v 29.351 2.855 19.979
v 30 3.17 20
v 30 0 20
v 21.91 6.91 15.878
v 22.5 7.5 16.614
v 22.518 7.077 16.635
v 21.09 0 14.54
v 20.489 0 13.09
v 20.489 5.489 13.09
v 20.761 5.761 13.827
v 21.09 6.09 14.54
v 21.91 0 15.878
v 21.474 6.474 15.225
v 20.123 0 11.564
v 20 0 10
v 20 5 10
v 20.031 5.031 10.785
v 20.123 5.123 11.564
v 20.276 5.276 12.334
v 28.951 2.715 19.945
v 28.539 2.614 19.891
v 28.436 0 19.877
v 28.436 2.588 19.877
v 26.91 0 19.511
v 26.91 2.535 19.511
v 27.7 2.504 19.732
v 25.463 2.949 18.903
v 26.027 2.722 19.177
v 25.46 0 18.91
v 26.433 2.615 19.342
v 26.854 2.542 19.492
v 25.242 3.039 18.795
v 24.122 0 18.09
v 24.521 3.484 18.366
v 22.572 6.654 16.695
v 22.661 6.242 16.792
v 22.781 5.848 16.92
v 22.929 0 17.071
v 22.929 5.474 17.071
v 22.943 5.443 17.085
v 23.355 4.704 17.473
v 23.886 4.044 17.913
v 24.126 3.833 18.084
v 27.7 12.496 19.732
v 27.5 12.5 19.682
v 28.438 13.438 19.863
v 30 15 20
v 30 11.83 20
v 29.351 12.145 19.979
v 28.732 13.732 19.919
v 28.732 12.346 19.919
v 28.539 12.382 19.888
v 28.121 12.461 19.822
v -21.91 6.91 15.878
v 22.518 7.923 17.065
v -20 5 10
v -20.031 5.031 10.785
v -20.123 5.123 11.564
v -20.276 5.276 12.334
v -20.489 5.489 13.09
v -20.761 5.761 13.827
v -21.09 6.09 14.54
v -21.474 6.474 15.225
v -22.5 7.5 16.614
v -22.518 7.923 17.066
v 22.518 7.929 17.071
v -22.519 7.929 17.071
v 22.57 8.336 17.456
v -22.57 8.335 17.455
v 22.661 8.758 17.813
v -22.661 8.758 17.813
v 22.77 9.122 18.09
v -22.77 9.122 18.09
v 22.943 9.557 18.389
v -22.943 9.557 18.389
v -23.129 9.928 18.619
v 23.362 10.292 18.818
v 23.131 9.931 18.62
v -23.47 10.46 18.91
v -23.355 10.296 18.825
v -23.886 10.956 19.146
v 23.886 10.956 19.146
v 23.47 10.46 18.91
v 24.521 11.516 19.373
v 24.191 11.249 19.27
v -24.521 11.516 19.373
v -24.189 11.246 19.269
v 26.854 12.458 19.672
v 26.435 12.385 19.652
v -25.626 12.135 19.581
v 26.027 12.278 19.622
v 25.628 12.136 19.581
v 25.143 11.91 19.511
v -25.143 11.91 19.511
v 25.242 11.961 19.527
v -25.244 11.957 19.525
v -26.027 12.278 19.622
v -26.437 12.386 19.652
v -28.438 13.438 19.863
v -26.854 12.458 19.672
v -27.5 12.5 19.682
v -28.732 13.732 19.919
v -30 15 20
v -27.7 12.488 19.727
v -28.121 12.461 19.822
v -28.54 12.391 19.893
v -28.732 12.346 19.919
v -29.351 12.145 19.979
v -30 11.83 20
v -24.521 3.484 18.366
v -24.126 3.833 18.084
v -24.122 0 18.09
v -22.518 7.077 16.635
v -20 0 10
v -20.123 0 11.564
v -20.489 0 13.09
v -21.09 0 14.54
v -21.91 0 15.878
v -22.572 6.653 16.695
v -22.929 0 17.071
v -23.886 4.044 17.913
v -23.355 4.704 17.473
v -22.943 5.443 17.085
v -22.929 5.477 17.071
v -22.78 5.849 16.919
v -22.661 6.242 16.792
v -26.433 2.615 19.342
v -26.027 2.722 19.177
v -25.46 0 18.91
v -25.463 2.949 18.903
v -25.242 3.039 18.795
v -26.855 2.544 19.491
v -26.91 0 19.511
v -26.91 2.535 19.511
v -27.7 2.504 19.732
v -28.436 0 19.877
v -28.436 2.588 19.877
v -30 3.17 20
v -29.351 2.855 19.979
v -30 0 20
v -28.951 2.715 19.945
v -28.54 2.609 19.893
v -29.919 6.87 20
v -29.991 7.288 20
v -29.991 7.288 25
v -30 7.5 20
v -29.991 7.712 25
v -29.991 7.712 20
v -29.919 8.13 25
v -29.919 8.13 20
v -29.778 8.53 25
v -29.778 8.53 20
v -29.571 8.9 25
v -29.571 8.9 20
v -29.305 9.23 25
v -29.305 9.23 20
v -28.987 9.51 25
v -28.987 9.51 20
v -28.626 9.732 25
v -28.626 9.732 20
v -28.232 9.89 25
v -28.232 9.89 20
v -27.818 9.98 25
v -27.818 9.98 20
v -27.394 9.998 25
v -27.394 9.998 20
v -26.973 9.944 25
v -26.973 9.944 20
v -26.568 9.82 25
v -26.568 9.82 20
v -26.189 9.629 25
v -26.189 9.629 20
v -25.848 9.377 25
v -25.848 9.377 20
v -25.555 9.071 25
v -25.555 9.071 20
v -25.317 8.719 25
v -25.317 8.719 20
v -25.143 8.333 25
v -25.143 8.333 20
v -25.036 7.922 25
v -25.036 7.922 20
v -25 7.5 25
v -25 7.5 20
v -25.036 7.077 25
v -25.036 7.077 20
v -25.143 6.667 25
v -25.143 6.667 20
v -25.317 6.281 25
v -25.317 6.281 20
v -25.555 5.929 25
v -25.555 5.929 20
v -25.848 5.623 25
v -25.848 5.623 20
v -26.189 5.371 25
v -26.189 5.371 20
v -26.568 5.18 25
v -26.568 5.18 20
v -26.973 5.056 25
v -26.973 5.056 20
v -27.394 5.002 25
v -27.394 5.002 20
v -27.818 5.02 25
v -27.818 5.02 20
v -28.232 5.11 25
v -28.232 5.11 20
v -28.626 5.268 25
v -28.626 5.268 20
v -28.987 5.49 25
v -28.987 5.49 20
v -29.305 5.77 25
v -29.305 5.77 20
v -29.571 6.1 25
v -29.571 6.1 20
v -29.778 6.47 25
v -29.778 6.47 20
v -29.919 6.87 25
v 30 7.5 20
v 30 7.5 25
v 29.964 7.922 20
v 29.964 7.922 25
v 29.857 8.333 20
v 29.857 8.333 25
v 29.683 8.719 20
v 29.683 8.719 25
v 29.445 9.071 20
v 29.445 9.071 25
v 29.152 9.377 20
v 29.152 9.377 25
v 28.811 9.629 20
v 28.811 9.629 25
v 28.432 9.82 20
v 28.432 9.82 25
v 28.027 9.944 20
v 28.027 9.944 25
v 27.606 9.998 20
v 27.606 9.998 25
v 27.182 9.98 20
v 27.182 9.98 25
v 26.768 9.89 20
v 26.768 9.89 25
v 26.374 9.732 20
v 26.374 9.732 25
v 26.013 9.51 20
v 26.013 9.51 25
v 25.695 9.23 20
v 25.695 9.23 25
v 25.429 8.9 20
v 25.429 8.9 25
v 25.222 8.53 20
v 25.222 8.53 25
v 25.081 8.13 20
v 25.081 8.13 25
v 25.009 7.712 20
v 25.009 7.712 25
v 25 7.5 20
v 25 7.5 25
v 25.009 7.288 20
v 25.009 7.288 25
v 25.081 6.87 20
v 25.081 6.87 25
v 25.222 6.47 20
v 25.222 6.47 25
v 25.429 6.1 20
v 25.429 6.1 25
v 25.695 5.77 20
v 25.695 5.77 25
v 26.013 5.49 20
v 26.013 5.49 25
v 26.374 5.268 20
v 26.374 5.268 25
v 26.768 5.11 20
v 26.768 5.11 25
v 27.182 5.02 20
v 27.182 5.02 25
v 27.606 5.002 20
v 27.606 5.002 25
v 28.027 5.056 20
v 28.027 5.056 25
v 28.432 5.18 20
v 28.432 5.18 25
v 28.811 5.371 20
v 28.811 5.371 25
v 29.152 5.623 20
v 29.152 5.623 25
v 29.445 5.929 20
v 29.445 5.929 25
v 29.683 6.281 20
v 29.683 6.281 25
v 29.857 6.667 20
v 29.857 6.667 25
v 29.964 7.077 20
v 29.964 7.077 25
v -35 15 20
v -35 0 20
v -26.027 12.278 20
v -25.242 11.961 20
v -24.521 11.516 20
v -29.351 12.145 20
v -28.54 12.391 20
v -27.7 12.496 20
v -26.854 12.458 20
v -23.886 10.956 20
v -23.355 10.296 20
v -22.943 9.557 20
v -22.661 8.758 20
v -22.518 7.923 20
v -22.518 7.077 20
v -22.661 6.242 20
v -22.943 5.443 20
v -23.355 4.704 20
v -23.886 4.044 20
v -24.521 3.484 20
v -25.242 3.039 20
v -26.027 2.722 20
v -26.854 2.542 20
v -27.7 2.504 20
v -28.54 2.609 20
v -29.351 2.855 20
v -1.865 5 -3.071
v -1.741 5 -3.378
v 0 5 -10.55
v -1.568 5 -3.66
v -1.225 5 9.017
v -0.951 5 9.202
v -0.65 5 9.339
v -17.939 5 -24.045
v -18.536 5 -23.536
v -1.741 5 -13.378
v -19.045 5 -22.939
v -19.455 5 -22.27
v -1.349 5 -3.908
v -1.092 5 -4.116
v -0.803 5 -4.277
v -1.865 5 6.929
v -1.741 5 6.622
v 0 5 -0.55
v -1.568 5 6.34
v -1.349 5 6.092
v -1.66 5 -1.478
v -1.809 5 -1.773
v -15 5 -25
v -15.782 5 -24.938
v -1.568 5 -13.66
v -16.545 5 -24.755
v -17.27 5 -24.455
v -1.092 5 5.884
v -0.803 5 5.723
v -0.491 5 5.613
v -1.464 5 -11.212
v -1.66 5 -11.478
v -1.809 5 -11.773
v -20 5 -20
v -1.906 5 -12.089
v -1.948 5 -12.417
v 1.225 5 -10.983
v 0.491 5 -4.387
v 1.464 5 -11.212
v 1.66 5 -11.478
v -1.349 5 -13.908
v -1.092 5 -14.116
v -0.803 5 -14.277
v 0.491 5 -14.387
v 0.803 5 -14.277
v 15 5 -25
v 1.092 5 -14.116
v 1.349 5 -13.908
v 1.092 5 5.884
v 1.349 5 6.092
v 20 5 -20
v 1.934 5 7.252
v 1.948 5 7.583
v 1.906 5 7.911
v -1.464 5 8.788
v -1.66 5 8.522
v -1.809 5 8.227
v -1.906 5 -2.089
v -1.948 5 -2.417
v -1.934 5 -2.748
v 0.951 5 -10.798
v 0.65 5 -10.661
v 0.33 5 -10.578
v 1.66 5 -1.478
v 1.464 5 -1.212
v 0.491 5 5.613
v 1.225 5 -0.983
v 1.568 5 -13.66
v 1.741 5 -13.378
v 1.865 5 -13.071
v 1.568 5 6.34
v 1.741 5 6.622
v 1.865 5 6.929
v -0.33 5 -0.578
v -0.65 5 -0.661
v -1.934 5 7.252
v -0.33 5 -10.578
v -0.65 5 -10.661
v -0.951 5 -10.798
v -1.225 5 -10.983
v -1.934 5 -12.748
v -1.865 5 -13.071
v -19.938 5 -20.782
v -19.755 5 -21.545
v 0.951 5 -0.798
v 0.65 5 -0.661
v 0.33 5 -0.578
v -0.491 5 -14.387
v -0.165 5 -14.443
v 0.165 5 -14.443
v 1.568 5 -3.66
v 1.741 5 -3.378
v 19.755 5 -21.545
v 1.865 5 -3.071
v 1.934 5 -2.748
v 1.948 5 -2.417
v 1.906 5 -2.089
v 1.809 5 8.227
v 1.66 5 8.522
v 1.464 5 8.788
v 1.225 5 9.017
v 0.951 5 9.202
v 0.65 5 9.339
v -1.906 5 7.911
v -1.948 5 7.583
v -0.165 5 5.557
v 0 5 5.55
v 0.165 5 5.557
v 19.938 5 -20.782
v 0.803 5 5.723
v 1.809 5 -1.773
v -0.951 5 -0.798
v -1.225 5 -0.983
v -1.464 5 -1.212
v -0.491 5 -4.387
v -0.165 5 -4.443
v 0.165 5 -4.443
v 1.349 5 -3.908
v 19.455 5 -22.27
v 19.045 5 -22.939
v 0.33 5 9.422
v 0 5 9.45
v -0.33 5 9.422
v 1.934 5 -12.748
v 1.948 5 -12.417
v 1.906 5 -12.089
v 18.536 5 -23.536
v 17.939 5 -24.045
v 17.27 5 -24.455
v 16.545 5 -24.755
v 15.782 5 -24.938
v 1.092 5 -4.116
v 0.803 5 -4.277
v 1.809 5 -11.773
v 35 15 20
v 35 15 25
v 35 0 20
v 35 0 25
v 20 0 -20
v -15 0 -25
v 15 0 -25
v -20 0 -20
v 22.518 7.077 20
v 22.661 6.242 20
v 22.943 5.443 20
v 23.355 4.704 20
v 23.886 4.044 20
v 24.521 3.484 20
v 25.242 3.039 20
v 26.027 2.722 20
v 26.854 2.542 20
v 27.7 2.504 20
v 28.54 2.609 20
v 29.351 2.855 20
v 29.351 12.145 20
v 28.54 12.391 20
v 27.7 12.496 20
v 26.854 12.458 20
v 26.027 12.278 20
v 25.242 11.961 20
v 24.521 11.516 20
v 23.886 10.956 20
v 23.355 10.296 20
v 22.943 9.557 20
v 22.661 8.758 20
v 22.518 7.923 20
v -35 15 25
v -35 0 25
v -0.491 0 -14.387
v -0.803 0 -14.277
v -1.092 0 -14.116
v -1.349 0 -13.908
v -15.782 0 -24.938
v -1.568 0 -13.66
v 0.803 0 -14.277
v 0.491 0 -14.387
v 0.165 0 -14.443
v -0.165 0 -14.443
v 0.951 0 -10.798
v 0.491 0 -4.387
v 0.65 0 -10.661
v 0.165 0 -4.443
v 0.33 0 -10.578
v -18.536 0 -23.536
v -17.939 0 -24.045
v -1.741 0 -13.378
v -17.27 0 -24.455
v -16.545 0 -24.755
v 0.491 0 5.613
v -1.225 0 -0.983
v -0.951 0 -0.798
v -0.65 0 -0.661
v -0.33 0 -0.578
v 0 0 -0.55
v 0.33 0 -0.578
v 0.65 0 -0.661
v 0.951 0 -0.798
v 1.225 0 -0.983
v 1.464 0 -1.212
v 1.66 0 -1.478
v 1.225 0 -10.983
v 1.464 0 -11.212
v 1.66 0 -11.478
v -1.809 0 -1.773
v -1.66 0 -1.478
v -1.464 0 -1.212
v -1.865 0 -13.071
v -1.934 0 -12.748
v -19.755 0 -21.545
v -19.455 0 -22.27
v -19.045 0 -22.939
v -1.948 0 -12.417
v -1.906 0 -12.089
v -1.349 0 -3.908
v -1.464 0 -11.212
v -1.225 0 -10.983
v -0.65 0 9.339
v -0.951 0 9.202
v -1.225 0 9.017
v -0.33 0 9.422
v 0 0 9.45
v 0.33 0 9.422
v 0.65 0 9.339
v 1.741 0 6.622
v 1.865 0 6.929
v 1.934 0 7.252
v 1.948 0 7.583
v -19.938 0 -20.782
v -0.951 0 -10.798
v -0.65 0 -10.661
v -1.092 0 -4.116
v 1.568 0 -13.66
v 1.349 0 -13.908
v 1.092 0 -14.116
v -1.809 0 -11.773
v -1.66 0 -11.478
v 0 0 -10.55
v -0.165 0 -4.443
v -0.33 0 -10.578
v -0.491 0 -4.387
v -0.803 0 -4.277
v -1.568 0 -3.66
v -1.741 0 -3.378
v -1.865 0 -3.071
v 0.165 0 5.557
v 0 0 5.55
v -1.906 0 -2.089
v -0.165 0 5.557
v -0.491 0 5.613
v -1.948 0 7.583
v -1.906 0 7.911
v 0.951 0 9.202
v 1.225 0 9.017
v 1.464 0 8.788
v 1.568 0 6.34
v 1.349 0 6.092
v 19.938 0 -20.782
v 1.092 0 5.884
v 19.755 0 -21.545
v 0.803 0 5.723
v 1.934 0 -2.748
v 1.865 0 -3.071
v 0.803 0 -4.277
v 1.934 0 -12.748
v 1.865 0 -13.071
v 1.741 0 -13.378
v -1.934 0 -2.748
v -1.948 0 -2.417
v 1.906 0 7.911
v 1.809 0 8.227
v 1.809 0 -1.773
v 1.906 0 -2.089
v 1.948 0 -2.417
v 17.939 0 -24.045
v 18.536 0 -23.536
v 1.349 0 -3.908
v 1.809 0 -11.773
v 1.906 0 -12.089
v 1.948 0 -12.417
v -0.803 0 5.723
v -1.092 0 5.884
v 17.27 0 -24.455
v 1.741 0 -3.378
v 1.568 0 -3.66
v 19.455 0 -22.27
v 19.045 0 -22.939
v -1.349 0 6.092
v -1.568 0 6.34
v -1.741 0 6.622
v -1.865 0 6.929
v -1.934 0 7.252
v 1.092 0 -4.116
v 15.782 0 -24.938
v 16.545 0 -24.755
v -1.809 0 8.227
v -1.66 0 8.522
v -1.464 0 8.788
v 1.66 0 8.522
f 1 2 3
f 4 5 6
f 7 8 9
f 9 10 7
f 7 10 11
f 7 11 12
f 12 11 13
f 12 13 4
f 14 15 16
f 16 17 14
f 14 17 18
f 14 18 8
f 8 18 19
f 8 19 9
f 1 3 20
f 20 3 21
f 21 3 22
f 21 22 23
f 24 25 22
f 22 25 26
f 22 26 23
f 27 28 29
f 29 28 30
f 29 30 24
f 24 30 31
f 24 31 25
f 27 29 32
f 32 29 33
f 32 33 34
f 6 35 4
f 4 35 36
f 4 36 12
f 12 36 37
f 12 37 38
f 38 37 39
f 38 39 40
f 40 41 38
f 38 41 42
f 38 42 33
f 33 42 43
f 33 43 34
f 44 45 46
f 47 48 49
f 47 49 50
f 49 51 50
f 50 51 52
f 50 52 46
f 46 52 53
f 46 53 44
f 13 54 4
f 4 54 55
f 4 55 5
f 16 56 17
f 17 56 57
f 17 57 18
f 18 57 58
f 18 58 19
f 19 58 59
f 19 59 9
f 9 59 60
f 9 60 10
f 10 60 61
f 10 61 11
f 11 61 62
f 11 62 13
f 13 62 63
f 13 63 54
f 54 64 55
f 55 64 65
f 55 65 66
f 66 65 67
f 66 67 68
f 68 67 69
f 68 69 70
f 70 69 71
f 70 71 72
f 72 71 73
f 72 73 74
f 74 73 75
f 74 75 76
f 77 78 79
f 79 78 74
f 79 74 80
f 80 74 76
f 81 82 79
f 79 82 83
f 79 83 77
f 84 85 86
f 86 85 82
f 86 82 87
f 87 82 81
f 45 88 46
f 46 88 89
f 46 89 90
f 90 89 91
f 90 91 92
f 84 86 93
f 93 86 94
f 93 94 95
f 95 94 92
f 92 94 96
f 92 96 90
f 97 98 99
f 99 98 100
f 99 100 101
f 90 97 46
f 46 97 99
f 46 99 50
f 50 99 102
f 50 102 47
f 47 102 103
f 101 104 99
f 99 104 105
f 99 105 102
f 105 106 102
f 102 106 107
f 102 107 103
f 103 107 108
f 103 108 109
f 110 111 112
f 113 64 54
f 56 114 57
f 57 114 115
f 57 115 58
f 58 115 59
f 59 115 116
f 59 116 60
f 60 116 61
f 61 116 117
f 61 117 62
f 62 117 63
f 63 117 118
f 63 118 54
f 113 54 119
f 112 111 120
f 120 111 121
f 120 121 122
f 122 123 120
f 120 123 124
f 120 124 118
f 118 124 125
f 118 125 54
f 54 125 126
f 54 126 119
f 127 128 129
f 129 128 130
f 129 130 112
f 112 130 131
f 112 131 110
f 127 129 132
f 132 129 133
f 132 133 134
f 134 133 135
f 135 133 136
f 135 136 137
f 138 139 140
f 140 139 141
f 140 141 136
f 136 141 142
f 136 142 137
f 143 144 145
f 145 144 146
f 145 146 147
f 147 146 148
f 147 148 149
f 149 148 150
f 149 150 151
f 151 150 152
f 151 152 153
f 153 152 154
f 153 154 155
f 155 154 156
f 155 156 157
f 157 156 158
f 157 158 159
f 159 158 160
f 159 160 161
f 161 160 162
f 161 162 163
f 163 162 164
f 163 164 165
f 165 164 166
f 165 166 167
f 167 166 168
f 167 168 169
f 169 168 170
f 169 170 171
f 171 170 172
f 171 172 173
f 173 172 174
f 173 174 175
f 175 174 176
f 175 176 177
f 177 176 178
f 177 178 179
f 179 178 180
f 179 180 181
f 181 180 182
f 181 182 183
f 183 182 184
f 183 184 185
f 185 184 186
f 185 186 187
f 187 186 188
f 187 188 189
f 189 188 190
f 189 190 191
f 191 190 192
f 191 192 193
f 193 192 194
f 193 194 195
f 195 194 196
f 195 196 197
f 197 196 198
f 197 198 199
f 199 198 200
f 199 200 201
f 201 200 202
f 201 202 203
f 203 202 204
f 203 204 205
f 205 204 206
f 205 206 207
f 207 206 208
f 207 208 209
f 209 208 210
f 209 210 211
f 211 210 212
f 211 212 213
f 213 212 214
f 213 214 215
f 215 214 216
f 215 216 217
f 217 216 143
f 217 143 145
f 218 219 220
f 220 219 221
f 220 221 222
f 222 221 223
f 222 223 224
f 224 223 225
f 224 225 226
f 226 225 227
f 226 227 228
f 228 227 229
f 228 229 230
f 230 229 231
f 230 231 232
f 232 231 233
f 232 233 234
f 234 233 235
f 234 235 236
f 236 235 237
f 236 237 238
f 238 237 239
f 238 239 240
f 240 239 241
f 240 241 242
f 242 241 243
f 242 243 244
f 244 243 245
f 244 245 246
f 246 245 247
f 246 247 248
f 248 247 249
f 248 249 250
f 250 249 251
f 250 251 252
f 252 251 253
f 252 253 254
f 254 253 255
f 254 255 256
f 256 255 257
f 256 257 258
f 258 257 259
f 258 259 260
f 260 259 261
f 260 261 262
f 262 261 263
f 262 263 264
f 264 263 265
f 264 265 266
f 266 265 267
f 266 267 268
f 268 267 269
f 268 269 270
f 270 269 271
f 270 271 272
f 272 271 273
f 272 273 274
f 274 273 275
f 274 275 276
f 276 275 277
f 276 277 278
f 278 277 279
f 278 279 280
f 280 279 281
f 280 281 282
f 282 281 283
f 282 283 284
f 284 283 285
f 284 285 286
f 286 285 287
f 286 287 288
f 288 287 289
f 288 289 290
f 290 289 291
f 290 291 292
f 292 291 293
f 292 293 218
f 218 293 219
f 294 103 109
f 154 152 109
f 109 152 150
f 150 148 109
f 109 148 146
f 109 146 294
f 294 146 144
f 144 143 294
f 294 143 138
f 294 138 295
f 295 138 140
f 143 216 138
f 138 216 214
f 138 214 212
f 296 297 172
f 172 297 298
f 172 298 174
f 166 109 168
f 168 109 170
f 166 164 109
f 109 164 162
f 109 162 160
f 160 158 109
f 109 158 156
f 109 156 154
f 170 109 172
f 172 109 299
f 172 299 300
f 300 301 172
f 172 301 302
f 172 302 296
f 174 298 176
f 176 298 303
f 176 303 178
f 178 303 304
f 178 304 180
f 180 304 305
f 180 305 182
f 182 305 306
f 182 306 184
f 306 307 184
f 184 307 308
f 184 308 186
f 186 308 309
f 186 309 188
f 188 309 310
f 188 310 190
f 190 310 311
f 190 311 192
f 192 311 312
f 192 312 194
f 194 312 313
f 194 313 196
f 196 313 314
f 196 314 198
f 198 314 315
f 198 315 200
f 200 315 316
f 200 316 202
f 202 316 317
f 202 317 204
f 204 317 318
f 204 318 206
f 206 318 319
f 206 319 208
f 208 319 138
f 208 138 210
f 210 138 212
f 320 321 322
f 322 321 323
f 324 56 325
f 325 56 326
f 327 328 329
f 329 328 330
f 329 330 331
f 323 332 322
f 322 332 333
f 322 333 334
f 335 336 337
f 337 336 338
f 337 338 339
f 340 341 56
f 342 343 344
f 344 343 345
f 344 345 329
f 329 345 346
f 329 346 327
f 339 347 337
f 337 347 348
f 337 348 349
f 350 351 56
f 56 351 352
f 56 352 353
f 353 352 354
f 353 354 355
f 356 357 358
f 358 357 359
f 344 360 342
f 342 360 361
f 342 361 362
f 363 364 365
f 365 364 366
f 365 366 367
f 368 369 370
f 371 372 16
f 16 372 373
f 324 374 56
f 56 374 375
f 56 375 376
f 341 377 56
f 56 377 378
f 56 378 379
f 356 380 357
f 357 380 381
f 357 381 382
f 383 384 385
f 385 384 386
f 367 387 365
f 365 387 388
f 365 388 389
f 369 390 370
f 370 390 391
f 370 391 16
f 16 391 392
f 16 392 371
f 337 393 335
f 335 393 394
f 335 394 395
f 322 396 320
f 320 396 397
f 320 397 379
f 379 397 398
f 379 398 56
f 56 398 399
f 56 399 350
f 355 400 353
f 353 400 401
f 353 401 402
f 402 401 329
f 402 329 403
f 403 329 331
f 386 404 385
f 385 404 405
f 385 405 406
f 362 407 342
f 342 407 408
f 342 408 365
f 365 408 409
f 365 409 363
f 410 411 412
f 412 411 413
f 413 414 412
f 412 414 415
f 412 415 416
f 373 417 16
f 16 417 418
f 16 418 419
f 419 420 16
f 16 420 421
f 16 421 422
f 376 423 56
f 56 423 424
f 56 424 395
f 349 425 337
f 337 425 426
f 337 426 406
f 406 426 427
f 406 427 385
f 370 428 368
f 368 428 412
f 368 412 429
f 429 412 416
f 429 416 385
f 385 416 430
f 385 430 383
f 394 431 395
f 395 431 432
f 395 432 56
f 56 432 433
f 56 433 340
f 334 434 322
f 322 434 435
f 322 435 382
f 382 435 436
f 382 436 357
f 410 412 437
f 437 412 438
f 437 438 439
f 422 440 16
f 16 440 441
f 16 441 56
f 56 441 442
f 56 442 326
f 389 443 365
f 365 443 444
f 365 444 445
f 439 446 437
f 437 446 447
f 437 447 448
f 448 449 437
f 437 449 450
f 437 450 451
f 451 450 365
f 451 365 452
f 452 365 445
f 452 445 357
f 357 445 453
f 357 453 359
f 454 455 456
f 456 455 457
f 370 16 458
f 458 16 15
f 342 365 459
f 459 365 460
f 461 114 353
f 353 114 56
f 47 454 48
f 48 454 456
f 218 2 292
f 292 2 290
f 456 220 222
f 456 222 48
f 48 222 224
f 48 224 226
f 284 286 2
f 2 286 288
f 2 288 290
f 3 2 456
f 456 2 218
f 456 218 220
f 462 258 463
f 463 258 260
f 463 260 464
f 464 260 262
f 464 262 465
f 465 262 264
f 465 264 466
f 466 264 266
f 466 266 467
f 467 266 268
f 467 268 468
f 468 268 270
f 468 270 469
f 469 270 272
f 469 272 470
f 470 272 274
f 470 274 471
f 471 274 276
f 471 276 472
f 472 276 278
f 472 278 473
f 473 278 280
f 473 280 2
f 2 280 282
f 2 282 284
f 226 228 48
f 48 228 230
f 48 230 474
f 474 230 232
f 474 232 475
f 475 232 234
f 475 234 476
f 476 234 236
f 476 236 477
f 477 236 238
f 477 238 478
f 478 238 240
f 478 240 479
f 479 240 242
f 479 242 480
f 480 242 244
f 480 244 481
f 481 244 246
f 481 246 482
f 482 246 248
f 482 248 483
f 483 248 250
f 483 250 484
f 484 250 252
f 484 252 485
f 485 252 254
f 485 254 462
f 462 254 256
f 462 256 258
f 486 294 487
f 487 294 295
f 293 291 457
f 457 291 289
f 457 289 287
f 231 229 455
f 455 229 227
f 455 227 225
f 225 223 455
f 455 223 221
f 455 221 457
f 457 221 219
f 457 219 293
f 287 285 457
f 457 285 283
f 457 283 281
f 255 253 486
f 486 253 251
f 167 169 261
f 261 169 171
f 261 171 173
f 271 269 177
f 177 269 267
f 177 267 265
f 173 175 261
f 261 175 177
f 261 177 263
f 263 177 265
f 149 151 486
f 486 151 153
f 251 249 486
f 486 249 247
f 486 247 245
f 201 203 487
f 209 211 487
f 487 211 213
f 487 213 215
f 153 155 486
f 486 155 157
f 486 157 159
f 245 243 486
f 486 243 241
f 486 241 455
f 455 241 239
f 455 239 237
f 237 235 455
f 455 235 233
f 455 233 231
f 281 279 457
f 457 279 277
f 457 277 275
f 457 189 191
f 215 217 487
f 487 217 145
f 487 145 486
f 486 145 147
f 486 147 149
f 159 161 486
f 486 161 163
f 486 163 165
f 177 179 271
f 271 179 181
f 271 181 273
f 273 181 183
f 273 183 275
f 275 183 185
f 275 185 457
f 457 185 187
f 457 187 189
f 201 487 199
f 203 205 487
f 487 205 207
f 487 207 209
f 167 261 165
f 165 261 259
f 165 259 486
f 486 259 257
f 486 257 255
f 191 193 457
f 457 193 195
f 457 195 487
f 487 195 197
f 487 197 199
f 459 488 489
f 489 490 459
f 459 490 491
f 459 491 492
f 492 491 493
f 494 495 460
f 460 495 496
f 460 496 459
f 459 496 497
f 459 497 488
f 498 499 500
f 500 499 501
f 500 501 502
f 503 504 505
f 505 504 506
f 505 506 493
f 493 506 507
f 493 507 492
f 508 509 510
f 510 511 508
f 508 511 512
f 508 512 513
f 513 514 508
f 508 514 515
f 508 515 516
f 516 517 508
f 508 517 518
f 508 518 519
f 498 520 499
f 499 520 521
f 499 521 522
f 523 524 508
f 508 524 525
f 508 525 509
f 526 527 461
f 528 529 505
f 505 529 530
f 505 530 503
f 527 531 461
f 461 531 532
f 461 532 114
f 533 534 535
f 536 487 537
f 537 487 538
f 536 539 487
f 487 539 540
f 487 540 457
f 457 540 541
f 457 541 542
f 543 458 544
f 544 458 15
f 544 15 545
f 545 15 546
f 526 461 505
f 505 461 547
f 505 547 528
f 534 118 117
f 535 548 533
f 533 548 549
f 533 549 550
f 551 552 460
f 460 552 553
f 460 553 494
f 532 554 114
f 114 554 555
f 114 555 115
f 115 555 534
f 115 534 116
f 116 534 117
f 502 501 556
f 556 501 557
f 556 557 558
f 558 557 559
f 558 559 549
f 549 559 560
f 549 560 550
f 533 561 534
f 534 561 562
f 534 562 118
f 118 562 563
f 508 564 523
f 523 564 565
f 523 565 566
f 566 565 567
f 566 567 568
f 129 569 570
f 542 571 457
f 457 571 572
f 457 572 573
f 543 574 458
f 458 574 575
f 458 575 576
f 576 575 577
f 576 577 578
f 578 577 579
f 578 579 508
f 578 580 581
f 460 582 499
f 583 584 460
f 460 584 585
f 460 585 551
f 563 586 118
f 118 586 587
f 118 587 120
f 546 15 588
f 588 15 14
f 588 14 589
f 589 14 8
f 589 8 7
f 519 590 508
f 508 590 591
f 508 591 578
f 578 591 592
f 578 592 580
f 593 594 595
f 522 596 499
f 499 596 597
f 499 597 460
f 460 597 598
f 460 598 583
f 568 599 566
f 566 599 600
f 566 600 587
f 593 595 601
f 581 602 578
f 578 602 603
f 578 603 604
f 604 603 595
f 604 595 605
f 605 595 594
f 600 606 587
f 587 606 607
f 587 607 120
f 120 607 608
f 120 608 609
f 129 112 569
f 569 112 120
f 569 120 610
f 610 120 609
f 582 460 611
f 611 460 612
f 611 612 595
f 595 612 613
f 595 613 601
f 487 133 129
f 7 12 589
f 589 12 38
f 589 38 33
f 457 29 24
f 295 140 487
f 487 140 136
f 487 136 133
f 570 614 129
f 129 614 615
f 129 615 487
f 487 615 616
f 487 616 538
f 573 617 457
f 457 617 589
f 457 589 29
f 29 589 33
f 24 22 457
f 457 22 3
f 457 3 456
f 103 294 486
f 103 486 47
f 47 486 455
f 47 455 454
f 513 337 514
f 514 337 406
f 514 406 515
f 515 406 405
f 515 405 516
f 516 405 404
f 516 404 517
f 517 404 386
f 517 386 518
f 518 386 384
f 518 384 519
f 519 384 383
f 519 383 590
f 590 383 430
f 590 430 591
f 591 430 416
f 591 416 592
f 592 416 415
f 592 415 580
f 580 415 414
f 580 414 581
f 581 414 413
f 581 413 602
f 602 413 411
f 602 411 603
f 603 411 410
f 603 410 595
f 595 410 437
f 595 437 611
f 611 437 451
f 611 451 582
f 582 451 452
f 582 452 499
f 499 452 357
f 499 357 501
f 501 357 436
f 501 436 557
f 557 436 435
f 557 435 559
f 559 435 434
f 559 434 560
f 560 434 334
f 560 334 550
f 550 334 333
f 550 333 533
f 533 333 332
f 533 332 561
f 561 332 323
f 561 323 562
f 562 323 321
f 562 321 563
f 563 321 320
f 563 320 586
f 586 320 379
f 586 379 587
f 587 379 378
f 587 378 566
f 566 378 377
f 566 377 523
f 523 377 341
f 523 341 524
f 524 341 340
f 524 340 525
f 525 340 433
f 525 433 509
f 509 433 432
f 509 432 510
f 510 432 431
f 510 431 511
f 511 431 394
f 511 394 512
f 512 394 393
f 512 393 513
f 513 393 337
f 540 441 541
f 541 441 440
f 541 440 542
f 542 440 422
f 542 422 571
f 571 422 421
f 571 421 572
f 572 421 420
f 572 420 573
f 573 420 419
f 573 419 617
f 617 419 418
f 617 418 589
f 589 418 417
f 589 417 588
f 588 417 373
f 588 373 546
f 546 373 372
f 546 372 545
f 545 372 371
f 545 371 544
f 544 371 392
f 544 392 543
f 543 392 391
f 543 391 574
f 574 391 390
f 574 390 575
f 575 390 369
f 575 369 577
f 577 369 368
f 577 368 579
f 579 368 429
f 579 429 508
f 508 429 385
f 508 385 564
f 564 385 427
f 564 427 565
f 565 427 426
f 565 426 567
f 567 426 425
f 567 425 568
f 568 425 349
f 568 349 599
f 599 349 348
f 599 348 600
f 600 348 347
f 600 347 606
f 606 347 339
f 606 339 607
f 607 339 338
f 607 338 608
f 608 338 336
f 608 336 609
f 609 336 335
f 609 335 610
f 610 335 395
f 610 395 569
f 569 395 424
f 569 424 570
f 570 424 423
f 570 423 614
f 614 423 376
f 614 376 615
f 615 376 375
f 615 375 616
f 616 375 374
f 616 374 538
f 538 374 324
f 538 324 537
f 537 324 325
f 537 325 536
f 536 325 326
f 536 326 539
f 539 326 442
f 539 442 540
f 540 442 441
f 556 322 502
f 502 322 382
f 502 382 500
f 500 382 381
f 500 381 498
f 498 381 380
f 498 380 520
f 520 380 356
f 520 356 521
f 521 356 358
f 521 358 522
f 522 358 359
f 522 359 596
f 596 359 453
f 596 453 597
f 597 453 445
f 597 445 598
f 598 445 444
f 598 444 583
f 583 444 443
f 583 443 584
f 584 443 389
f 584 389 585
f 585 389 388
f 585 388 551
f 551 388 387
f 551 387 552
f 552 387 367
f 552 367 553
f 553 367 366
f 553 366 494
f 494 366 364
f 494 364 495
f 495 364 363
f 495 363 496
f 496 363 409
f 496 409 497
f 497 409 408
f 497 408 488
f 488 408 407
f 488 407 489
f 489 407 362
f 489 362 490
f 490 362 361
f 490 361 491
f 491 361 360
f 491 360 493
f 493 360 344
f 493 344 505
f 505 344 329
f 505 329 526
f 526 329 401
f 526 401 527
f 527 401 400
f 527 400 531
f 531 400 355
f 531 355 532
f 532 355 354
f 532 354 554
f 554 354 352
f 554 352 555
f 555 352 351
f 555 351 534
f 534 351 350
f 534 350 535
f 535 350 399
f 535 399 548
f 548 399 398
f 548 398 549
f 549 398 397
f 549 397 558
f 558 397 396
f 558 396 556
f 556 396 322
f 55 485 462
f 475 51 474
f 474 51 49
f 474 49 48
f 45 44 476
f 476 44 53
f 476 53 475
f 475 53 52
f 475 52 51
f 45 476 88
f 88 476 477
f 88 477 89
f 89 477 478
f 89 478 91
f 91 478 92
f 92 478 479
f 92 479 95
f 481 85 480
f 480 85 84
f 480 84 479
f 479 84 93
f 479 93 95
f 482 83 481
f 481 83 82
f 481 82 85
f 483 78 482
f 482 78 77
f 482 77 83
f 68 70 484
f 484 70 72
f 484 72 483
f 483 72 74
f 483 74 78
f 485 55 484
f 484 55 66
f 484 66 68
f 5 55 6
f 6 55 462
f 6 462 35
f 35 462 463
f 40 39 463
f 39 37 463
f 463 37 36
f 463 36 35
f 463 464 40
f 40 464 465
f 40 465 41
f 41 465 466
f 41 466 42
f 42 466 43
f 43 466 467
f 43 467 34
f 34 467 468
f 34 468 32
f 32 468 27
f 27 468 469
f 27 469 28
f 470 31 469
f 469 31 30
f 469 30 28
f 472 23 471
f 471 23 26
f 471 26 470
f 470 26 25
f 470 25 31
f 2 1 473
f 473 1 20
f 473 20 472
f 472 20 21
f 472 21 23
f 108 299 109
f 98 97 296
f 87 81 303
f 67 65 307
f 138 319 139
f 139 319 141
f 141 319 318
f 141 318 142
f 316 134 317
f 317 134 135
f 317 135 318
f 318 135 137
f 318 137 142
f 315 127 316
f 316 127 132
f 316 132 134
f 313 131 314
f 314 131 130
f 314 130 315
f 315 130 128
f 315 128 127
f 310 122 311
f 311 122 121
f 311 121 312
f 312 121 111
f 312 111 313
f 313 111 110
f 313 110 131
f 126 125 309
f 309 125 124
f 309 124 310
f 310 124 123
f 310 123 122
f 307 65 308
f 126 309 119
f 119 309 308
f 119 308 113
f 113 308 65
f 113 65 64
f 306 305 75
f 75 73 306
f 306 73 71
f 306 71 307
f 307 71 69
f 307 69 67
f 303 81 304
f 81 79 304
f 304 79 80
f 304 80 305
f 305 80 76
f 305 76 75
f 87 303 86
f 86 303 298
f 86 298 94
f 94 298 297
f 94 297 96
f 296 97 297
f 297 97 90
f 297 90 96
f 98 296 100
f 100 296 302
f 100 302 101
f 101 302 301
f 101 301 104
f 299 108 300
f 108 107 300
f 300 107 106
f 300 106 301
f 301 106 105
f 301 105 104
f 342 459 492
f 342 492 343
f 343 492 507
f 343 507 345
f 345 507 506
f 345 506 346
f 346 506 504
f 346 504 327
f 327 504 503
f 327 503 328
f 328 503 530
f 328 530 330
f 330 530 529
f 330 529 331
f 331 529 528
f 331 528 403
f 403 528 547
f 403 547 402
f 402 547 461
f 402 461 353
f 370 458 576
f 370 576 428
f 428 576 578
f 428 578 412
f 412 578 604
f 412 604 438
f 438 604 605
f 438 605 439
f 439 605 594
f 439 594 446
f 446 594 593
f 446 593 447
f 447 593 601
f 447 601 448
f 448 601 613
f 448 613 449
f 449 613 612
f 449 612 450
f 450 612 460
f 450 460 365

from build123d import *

# Parameters (mm, degrees)
BOSS_EXTRUDE1_DEPTH = 5
SKETCH2_W           = 70
SKETCH2_H           = 5
BOSS_EXTRUDE2_DEPTH = 10
SKETCH3_R           = 1.95
CUT_EXTRUDE1_DEPTH  = 45.158804332
FILLET1_R           = 10
SKETCH4_R           = 2.5
CUT_EXTRUDE2_DEPTH  = 63.84902545
SKETCH5_R           = 5
CUT_EXTRUDE3_DEPTH  = 17
FILLET2_R           = 5


with BuildPart() as part:
    # Sketch1 → Boss-Extrude1 (new body)
    with BuildSketch(Plane(origin=(0, 0, 0), x_dir=(1, 0, 0), z_dir=(0, 1, 0))):
        Polygon((-35, -25), (-20, -25), (20, -25), (35, -25), (35, -20), (20, -20), (20, 25), (-20, 25), (-20, -20), (-35, -20), align=None)
    extrude(amount=BOSS_EXTRUDE1_DEPTH)

    # Sketch2 → Boss-Extrude2 (add)
    with BuildSketch(Plane(origin=(0, 5, 0), x_dir=(1, 0, 0), z_dir=(0, 1, 0))):
        with Locations((0, -22.5)):
            Rectangle(SKETCH2_W, SKETCH2_H)
    extrude(amount=BOSS_EXTRUDE2_DEPTH)

    # Sketch3 → Cut-Extrude1 (cut, through all)
    with BuildSketch(Plane(origin=(0, 5, 0), x_dir=(1, 0, 0), z_dir=(0, 1, 0))):
        with Locations(Location((0, 12.5, 0), (0, 0, 270))):
            Circle(SKETCH3_R)
        with Locations(Location((0, -7.5, 0), (0, 0, 90))):
            Circle(SKETCH3_R)
        with Locations(Location((0, 2.5, 0), (0, 0, 270))):
            Circle(SKETCH3_R)
    extrude(amount=-CUT_EXTRUDE1_DEPTH, mode=Mode.SUBTRACT)

    # Fillet1
    fillet1_edges = [part.edges().sort_by_distance(p)[0] for p in [
        (-20, 2.5, 20),
        (20, 2.5, 20),
        (0, 5, 20),
    ]]
    fillet(fillet1_edges, radius=FILLET1_R - 0.0001)  # a hair under: the kernel refuses the full size

    # Sketch4 → Cut-Extrude2 (cut, through all)
    with BuildSketch(Plane.XY.offset(25)):
        with Locations((-27.5, 7.5)):
            Circle(SKETCH4_R)
        with Locations((27.5, 7.5)):
            Circle(SKETCH4_R)
    extrude(amount=-CUT_EXTRUDE2_DEPTH, mode=Mode.SUBTRACT)

    # Sketch5 → Cut-Extrude3 (cut)
    with BuildSketch(Plane(origin=(0, 0, 20), x_dir=(-1, 0, 0), z_dir=(0, 0, -1))):
        with Locations((27.5, 7.5)):
            Circle(SKETCH5_R)
        with Locations((-27.5, 7.5)):
            Circle(SKETCH5_R)
    extrude(amount=CUT_EXTRUDE3_DEPTH, mode=Mode.SUBTRACT)

    # Fillet2
    fillet2_edges = [part.edges().sort_by_distance(p)[0] for p in [
        (-20, 2.5, -25),
        (20, 2.5, -25),
    ]]
    fillet(fillet2_edges, radius=FILLET2_R)


solid = part.part
